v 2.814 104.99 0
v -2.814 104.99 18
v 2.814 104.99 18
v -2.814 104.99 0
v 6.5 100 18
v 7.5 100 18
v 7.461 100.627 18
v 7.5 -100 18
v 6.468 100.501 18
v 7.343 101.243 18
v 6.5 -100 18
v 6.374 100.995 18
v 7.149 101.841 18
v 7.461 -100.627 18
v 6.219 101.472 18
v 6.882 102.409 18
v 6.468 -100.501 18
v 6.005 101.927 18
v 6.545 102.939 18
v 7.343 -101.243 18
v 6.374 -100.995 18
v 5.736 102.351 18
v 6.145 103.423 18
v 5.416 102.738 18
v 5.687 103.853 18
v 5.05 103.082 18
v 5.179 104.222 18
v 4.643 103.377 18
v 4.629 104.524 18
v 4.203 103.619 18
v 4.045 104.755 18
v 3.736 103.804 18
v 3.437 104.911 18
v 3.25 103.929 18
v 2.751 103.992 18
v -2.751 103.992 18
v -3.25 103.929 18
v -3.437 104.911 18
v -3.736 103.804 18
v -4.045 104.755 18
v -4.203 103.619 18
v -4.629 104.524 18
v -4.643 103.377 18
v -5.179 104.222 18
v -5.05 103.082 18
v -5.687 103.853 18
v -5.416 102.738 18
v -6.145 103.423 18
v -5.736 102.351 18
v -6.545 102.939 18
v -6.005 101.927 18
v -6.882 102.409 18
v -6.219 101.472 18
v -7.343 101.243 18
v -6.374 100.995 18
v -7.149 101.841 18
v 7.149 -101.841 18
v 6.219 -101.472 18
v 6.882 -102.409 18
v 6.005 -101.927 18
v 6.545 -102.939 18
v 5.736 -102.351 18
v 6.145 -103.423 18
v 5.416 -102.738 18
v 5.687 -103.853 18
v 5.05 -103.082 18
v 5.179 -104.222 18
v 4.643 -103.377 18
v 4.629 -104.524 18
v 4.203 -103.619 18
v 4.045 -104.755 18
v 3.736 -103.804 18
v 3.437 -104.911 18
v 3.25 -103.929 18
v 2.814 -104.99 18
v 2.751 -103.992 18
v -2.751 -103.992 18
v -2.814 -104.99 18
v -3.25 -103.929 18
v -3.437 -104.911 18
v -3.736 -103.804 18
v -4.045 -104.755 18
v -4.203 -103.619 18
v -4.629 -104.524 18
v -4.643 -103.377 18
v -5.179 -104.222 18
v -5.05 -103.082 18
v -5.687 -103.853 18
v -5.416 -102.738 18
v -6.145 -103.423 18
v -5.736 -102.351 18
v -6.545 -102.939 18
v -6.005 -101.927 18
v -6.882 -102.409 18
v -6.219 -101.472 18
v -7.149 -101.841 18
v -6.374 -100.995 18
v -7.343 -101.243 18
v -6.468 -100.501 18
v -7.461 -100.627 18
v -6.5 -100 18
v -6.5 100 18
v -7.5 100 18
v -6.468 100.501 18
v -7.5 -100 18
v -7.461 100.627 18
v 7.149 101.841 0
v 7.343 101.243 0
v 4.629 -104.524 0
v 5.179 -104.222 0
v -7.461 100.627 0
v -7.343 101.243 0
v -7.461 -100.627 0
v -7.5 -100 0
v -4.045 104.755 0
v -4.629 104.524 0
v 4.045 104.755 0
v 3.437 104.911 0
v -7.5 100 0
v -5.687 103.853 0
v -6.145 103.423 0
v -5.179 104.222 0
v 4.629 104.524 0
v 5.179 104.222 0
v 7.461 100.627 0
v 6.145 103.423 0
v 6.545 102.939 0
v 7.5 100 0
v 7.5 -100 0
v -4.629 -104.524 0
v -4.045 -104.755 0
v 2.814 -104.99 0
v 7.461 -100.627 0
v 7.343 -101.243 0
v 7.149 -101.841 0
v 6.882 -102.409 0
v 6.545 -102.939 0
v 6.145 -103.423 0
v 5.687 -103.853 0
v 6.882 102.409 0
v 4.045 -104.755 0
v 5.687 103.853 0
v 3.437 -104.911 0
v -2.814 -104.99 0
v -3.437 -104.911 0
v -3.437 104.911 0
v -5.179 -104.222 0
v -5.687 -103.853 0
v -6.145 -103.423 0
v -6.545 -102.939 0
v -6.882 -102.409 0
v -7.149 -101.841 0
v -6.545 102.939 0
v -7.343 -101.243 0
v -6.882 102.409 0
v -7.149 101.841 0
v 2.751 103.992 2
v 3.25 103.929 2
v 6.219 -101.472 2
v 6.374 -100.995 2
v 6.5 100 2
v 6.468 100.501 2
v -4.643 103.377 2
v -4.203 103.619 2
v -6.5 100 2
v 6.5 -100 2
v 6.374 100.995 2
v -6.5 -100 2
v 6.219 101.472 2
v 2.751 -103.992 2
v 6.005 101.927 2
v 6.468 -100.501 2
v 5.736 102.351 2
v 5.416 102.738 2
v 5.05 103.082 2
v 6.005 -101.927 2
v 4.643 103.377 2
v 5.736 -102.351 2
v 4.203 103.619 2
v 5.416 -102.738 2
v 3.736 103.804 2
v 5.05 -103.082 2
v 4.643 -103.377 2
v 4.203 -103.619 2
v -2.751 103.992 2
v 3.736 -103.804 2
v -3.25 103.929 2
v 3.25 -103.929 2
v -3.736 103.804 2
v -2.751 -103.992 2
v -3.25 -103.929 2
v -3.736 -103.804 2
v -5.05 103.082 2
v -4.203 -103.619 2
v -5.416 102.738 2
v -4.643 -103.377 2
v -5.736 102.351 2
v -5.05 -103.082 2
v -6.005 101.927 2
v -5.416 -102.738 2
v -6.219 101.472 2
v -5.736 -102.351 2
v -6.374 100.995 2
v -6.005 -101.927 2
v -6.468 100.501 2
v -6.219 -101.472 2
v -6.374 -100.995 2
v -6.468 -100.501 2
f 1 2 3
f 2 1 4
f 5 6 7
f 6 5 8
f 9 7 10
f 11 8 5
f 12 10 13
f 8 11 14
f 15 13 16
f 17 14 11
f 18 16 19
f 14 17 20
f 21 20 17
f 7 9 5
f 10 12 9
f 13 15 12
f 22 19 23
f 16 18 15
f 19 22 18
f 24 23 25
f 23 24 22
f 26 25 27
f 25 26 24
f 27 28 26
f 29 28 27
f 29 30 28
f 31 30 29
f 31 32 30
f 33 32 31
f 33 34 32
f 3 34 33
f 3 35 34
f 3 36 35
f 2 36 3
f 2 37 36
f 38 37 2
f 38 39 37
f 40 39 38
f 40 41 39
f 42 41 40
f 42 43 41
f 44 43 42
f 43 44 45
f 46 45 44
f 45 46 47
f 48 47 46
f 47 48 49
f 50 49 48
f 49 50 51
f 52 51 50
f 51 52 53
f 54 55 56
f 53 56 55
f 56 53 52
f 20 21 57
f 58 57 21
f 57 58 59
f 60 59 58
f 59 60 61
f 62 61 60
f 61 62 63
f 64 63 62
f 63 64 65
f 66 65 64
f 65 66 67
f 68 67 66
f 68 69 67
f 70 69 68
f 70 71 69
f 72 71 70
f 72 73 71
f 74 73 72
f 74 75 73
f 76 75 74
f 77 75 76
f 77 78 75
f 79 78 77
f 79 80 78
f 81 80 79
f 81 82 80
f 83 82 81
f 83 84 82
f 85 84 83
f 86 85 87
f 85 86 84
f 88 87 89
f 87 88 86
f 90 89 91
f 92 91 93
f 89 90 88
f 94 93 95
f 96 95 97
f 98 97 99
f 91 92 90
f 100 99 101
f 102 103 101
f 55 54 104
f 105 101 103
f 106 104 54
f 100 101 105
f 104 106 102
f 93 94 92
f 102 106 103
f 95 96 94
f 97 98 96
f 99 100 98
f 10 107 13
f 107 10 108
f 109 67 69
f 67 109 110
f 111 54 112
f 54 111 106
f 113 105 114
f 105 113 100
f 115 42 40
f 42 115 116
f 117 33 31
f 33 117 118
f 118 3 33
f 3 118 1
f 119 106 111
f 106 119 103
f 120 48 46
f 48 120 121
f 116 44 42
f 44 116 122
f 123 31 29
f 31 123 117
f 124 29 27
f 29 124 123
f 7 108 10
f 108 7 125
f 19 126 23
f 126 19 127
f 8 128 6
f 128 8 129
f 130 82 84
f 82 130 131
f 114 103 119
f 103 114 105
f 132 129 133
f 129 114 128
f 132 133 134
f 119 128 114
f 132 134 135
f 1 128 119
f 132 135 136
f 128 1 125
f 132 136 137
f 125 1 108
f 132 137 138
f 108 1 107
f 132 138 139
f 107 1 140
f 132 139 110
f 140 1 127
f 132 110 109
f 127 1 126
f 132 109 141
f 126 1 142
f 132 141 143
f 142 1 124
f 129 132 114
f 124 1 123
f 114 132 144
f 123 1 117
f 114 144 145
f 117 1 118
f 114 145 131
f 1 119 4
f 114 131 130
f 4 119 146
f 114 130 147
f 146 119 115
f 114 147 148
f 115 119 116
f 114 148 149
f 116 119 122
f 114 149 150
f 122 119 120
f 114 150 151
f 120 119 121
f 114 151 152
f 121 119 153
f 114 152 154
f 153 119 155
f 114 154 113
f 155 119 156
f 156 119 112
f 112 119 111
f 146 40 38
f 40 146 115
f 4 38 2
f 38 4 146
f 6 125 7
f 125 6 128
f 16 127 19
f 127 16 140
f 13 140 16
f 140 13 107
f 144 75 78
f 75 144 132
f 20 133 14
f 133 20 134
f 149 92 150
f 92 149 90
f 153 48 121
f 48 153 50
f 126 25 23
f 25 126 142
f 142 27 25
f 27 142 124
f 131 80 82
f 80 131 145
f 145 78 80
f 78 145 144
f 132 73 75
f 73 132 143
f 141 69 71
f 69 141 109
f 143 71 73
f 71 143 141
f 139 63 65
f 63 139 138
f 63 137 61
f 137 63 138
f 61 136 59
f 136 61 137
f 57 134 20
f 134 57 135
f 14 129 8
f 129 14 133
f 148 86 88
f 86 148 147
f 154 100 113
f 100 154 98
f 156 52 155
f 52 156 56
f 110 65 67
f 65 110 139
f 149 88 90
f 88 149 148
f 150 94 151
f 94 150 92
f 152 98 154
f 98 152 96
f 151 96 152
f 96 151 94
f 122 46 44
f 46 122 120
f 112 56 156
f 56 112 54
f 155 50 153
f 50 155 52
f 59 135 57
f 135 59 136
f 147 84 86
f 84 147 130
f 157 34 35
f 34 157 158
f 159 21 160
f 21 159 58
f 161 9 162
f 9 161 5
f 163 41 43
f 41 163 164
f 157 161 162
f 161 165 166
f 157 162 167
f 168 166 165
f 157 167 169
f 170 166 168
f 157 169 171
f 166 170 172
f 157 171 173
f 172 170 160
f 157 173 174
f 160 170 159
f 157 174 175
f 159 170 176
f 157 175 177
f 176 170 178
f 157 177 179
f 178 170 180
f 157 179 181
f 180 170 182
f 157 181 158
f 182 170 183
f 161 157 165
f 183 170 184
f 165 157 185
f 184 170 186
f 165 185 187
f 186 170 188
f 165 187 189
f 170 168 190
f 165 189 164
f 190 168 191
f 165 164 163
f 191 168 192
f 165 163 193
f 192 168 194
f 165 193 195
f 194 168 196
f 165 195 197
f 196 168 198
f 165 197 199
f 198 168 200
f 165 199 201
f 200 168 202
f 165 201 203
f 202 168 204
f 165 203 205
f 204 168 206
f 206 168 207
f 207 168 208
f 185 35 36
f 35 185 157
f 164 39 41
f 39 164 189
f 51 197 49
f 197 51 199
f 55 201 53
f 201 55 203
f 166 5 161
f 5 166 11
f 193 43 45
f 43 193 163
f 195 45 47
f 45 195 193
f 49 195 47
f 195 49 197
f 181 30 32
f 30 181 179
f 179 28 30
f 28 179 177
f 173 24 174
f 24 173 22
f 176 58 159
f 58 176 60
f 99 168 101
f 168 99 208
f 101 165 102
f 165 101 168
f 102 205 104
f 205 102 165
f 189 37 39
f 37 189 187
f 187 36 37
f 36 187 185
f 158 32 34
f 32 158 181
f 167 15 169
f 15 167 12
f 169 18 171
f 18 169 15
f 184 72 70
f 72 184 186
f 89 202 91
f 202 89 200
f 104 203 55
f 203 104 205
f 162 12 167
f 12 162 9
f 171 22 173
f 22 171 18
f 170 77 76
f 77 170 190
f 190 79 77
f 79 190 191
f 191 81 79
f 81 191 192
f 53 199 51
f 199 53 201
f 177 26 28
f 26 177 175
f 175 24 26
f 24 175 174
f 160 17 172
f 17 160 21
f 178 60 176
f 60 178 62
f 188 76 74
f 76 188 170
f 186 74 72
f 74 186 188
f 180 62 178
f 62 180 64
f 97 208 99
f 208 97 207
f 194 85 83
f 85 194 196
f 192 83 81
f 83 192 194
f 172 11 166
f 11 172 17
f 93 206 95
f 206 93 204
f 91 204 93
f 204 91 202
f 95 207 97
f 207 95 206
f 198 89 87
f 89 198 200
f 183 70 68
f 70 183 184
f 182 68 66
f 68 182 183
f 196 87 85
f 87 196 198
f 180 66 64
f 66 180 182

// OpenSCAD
$fn = 50;


difference() {
	union() {
		hull() {
			translate(v = [-2.5000000000, 100.0000000000, 0]) {
				cylinder(h = 18, r = 5);
			}
			translate(v = [2.5000000000, 100.0000000000, 0]) {
				cylinder(h = 18, r = 5);
			}
			translate(v = [-2.5000000000, -100.0000000000, 0]) {
				cylinder(h = 18, r = 5);
			}
			translate(v = [2.5000000000, -100.0000000000, 0]) {
				cylinder(h = 18, r = 5);
			}
		}
	}
	union() {
		translate(v = [0, 0, 2]) {
			hull() {
				translate(v = [-2.5000000000, 100.0000000000, 0]) {
					cylinder(h = 16, r = 4);
				}
				translate(v = [2.5000000000, 100.0000000000, 0]) {
					cylinder(h = 16, r = 4);
				}
				translate(v = [-2.5000000000, -100.0000000000, 0]) {
					cylinder(h = 16, r = 4);
				}
				translate(v = [2.5000000000, -100.0000000000, 0]) {
					cylinder(h = 16, r = 4);
				}
			}
		}
	}
}
